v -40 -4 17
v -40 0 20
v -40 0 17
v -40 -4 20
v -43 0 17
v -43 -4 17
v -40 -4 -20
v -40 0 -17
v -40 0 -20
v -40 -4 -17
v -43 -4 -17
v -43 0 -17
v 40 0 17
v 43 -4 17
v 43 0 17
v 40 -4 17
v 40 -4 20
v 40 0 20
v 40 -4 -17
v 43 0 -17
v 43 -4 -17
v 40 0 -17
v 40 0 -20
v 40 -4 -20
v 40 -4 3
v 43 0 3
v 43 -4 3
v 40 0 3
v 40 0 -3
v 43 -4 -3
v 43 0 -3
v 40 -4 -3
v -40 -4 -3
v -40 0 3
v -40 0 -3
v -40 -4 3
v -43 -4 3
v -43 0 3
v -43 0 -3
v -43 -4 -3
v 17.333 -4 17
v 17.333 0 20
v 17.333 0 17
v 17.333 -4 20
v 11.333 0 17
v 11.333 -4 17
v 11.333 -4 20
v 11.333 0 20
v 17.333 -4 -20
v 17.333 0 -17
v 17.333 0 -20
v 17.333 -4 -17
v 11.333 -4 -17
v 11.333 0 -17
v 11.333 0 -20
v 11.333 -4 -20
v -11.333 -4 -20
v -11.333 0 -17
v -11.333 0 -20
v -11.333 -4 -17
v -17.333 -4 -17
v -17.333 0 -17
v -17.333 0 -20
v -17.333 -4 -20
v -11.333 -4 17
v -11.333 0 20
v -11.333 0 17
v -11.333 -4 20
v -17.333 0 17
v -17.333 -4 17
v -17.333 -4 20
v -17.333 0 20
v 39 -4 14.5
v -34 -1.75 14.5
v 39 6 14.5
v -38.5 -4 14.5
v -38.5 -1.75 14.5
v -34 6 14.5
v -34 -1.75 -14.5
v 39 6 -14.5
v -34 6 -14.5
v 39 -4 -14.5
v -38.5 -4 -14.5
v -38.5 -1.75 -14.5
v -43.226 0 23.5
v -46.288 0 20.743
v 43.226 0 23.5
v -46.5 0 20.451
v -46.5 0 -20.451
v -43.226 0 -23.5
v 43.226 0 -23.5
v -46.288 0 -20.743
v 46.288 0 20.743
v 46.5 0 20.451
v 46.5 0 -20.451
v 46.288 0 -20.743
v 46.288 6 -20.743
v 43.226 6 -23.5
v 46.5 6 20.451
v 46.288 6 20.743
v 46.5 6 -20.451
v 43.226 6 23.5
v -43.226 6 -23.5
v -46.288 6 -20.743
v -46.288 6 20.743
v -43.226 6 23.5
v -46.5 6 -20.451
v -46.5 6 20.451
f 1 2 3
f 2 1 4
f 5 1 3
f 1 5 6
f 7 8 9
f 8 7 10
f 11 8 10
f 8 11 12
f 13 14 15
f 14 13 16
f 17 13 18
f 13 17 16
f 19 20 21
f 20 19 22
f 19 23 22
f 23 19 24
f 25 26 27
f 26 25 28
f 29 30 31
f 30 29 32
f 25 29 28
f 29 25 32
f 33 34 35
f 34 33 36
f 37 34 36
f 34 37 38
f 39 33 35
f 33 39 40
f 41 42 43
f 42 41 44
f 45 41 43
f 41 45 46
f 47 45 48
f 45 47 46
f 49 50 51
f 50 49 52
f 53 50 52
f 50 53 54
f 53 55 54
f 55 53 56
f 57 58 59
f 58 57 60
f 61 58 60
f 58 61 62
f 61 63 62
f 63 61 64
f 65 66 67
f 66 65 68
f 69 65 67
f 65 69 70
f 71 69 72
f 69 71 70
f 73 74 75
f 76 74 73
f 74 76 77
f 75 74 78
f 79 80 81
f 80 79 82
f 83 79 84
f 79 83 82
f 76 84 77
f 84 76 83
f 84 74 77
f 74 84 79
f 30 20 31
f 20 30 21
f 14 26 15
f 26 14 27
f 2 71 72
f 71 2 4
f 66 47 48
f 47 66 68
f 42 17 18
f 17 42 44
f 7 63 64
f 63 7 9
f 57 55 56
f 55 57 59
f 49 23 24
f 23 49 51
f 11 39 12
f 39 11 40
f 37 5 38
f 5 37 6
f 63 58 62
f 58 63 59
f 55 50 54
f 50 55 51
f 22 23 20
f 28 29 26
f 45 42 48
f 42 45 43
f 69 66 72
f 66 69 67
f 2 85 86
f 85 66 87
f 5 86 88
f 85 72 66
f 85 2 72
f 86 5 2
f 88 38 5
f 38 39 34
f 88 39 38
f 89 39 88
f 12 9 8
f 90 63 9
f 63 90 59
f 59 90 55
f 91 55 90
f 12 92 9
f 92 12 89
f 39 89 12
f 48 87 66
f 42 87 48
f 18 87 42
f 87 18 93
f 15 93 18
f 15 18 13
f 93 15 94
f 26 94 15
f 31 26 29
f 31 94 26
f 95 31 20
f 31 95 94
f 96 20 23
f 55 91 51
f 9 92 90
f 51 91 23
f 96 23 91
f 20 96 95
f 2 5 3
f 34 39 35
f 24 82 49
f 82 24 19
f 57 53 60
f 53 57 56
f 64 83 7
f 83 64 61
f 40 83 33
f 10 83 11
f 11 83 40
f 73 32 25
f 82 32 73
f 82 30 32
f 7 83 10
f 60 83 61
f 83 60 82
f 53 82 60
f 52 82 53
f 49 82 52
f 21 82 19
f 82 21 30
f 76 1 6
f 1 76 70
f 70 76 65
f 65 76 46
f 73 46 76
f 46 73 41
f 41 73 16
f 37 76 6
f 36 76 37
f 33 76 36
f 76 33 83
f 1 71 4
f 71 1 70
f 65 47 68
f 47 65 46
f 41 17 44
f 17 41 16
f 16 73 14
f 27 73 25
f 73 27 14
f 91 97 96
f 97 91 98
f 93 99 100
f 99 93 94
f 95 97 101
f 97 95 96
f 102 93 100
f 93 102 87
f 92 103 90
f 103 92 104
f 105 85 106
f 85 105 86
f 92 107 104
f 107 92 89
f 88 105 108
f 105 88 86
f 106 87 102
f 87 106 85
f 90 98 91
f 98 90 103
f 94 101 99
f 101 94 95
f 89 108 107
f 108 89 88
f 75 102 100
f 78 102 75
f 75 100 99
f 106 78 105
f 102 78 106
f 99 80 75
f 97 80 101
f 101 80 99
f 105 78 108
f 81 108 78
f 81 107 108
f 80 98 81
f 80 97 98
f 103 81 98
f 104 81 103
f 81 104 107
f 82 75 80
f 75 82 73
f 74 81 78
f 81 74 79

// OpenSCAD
whiteHoleWidth=93;
wireframeWidth=86;
holeWidth=72;
whiteHoleHeight=47;
wireframeHeight=40;
holeHeight=28;
holeRightBias=5;

wireframeDepth=4;
whiteHoleDepth=6;

extra=0.5; // to help adjusting pieces
extraDeep=20; //hole to help with differences
holeDiameter=5+2*extra; // screw supports diameter with help adjusting

module screwHole(width, depth){
    translate([width,0,depth]){
        cube([holeDiameter,wireframeDepth+extraDeep,holeDiameter],true);
    }
}

module wireframe(width,height, depth){
    hingeWidth=5;
    hingeDepth=1;
    difference(){
        union(){
            //black hole wireframe
            translate([0,-depth/2,0]){
                cube([width,depth,height],true);
            }
        }
        union(){
            // screw holes
            screwHole(-width/2,height/2);
            screwHole(-width/2,-height/2);
            screwHole(width/2,height/2);
            screwHole(width/2,-height/2);
            screwHole(width/2,0);
            screwHole(-width/2,0);
            screwHole(width/6,height/2);
            screwHole(width/6,-height/2);
            screwHole(-width/6,-height/2);
            screwHole(-width/6,height/2);
     
            // Hinge
            translate([-width/2+holeDiameter/2+holeRightBias-extra,-depth+hingeDepth/2+extra,0]){
                cube([hingeWidth+2*extra,hingeDepth+1+extra,holeHeight+2*extra],true);
            }
        }
    }
}

module roundCornersLandscape(w,h,d,rd,rp){
    l=5;
    roundDiameter=w/rd;
    roundPosition=w/rp;
    union(){
        difference(){
            translate([0,0,0]){
                cube([w,d,h],true);
            }
            union(){
                translate([roundPosition,0,0]){
                    rotate([90,90,180]){
                        cylinder(d+l, roundDiameter,roundDiameter,true);
                    }
                }
                translate([-roundPosition,0,0]){
                    rotate([90,90,180]){
                        cylinder(d+l, roundDiameter,roundDiameter,true);
                    }
                }
                translate([0,0,0]){
                    cube([w/2,d+l,h],true);
                }
            }
        }
        difference(){
            translate([0,0,0]){
                cube([w+l,d,h+l],true);
            }
            translate([0,0,0]){
                cube([w,d+l,h],true);
            }
        }
    }
}

difference(){
    union(){
        wireframe(wireframeWidth,wireframeHeight,wireframeDepth);
        // White hole wireframe extra Infill
        translate([0,whiteHoleDepth/2,0]){
            difference(){
                cube([whiteHoleWidth,whiteHoleDepth,whiteHoleHeight],true);
                roundCornersLandscape(whiteHoleWidth, whiteHoleHeight, whiteHoleDepth+1,3,4);
            }
        }
    }
    // Main hole
    translate([holeRightBias/2,0,0]){
        cube([holeWidth+2*extra,extraDeep,holeHeight+2*extra], true);
    }
}
